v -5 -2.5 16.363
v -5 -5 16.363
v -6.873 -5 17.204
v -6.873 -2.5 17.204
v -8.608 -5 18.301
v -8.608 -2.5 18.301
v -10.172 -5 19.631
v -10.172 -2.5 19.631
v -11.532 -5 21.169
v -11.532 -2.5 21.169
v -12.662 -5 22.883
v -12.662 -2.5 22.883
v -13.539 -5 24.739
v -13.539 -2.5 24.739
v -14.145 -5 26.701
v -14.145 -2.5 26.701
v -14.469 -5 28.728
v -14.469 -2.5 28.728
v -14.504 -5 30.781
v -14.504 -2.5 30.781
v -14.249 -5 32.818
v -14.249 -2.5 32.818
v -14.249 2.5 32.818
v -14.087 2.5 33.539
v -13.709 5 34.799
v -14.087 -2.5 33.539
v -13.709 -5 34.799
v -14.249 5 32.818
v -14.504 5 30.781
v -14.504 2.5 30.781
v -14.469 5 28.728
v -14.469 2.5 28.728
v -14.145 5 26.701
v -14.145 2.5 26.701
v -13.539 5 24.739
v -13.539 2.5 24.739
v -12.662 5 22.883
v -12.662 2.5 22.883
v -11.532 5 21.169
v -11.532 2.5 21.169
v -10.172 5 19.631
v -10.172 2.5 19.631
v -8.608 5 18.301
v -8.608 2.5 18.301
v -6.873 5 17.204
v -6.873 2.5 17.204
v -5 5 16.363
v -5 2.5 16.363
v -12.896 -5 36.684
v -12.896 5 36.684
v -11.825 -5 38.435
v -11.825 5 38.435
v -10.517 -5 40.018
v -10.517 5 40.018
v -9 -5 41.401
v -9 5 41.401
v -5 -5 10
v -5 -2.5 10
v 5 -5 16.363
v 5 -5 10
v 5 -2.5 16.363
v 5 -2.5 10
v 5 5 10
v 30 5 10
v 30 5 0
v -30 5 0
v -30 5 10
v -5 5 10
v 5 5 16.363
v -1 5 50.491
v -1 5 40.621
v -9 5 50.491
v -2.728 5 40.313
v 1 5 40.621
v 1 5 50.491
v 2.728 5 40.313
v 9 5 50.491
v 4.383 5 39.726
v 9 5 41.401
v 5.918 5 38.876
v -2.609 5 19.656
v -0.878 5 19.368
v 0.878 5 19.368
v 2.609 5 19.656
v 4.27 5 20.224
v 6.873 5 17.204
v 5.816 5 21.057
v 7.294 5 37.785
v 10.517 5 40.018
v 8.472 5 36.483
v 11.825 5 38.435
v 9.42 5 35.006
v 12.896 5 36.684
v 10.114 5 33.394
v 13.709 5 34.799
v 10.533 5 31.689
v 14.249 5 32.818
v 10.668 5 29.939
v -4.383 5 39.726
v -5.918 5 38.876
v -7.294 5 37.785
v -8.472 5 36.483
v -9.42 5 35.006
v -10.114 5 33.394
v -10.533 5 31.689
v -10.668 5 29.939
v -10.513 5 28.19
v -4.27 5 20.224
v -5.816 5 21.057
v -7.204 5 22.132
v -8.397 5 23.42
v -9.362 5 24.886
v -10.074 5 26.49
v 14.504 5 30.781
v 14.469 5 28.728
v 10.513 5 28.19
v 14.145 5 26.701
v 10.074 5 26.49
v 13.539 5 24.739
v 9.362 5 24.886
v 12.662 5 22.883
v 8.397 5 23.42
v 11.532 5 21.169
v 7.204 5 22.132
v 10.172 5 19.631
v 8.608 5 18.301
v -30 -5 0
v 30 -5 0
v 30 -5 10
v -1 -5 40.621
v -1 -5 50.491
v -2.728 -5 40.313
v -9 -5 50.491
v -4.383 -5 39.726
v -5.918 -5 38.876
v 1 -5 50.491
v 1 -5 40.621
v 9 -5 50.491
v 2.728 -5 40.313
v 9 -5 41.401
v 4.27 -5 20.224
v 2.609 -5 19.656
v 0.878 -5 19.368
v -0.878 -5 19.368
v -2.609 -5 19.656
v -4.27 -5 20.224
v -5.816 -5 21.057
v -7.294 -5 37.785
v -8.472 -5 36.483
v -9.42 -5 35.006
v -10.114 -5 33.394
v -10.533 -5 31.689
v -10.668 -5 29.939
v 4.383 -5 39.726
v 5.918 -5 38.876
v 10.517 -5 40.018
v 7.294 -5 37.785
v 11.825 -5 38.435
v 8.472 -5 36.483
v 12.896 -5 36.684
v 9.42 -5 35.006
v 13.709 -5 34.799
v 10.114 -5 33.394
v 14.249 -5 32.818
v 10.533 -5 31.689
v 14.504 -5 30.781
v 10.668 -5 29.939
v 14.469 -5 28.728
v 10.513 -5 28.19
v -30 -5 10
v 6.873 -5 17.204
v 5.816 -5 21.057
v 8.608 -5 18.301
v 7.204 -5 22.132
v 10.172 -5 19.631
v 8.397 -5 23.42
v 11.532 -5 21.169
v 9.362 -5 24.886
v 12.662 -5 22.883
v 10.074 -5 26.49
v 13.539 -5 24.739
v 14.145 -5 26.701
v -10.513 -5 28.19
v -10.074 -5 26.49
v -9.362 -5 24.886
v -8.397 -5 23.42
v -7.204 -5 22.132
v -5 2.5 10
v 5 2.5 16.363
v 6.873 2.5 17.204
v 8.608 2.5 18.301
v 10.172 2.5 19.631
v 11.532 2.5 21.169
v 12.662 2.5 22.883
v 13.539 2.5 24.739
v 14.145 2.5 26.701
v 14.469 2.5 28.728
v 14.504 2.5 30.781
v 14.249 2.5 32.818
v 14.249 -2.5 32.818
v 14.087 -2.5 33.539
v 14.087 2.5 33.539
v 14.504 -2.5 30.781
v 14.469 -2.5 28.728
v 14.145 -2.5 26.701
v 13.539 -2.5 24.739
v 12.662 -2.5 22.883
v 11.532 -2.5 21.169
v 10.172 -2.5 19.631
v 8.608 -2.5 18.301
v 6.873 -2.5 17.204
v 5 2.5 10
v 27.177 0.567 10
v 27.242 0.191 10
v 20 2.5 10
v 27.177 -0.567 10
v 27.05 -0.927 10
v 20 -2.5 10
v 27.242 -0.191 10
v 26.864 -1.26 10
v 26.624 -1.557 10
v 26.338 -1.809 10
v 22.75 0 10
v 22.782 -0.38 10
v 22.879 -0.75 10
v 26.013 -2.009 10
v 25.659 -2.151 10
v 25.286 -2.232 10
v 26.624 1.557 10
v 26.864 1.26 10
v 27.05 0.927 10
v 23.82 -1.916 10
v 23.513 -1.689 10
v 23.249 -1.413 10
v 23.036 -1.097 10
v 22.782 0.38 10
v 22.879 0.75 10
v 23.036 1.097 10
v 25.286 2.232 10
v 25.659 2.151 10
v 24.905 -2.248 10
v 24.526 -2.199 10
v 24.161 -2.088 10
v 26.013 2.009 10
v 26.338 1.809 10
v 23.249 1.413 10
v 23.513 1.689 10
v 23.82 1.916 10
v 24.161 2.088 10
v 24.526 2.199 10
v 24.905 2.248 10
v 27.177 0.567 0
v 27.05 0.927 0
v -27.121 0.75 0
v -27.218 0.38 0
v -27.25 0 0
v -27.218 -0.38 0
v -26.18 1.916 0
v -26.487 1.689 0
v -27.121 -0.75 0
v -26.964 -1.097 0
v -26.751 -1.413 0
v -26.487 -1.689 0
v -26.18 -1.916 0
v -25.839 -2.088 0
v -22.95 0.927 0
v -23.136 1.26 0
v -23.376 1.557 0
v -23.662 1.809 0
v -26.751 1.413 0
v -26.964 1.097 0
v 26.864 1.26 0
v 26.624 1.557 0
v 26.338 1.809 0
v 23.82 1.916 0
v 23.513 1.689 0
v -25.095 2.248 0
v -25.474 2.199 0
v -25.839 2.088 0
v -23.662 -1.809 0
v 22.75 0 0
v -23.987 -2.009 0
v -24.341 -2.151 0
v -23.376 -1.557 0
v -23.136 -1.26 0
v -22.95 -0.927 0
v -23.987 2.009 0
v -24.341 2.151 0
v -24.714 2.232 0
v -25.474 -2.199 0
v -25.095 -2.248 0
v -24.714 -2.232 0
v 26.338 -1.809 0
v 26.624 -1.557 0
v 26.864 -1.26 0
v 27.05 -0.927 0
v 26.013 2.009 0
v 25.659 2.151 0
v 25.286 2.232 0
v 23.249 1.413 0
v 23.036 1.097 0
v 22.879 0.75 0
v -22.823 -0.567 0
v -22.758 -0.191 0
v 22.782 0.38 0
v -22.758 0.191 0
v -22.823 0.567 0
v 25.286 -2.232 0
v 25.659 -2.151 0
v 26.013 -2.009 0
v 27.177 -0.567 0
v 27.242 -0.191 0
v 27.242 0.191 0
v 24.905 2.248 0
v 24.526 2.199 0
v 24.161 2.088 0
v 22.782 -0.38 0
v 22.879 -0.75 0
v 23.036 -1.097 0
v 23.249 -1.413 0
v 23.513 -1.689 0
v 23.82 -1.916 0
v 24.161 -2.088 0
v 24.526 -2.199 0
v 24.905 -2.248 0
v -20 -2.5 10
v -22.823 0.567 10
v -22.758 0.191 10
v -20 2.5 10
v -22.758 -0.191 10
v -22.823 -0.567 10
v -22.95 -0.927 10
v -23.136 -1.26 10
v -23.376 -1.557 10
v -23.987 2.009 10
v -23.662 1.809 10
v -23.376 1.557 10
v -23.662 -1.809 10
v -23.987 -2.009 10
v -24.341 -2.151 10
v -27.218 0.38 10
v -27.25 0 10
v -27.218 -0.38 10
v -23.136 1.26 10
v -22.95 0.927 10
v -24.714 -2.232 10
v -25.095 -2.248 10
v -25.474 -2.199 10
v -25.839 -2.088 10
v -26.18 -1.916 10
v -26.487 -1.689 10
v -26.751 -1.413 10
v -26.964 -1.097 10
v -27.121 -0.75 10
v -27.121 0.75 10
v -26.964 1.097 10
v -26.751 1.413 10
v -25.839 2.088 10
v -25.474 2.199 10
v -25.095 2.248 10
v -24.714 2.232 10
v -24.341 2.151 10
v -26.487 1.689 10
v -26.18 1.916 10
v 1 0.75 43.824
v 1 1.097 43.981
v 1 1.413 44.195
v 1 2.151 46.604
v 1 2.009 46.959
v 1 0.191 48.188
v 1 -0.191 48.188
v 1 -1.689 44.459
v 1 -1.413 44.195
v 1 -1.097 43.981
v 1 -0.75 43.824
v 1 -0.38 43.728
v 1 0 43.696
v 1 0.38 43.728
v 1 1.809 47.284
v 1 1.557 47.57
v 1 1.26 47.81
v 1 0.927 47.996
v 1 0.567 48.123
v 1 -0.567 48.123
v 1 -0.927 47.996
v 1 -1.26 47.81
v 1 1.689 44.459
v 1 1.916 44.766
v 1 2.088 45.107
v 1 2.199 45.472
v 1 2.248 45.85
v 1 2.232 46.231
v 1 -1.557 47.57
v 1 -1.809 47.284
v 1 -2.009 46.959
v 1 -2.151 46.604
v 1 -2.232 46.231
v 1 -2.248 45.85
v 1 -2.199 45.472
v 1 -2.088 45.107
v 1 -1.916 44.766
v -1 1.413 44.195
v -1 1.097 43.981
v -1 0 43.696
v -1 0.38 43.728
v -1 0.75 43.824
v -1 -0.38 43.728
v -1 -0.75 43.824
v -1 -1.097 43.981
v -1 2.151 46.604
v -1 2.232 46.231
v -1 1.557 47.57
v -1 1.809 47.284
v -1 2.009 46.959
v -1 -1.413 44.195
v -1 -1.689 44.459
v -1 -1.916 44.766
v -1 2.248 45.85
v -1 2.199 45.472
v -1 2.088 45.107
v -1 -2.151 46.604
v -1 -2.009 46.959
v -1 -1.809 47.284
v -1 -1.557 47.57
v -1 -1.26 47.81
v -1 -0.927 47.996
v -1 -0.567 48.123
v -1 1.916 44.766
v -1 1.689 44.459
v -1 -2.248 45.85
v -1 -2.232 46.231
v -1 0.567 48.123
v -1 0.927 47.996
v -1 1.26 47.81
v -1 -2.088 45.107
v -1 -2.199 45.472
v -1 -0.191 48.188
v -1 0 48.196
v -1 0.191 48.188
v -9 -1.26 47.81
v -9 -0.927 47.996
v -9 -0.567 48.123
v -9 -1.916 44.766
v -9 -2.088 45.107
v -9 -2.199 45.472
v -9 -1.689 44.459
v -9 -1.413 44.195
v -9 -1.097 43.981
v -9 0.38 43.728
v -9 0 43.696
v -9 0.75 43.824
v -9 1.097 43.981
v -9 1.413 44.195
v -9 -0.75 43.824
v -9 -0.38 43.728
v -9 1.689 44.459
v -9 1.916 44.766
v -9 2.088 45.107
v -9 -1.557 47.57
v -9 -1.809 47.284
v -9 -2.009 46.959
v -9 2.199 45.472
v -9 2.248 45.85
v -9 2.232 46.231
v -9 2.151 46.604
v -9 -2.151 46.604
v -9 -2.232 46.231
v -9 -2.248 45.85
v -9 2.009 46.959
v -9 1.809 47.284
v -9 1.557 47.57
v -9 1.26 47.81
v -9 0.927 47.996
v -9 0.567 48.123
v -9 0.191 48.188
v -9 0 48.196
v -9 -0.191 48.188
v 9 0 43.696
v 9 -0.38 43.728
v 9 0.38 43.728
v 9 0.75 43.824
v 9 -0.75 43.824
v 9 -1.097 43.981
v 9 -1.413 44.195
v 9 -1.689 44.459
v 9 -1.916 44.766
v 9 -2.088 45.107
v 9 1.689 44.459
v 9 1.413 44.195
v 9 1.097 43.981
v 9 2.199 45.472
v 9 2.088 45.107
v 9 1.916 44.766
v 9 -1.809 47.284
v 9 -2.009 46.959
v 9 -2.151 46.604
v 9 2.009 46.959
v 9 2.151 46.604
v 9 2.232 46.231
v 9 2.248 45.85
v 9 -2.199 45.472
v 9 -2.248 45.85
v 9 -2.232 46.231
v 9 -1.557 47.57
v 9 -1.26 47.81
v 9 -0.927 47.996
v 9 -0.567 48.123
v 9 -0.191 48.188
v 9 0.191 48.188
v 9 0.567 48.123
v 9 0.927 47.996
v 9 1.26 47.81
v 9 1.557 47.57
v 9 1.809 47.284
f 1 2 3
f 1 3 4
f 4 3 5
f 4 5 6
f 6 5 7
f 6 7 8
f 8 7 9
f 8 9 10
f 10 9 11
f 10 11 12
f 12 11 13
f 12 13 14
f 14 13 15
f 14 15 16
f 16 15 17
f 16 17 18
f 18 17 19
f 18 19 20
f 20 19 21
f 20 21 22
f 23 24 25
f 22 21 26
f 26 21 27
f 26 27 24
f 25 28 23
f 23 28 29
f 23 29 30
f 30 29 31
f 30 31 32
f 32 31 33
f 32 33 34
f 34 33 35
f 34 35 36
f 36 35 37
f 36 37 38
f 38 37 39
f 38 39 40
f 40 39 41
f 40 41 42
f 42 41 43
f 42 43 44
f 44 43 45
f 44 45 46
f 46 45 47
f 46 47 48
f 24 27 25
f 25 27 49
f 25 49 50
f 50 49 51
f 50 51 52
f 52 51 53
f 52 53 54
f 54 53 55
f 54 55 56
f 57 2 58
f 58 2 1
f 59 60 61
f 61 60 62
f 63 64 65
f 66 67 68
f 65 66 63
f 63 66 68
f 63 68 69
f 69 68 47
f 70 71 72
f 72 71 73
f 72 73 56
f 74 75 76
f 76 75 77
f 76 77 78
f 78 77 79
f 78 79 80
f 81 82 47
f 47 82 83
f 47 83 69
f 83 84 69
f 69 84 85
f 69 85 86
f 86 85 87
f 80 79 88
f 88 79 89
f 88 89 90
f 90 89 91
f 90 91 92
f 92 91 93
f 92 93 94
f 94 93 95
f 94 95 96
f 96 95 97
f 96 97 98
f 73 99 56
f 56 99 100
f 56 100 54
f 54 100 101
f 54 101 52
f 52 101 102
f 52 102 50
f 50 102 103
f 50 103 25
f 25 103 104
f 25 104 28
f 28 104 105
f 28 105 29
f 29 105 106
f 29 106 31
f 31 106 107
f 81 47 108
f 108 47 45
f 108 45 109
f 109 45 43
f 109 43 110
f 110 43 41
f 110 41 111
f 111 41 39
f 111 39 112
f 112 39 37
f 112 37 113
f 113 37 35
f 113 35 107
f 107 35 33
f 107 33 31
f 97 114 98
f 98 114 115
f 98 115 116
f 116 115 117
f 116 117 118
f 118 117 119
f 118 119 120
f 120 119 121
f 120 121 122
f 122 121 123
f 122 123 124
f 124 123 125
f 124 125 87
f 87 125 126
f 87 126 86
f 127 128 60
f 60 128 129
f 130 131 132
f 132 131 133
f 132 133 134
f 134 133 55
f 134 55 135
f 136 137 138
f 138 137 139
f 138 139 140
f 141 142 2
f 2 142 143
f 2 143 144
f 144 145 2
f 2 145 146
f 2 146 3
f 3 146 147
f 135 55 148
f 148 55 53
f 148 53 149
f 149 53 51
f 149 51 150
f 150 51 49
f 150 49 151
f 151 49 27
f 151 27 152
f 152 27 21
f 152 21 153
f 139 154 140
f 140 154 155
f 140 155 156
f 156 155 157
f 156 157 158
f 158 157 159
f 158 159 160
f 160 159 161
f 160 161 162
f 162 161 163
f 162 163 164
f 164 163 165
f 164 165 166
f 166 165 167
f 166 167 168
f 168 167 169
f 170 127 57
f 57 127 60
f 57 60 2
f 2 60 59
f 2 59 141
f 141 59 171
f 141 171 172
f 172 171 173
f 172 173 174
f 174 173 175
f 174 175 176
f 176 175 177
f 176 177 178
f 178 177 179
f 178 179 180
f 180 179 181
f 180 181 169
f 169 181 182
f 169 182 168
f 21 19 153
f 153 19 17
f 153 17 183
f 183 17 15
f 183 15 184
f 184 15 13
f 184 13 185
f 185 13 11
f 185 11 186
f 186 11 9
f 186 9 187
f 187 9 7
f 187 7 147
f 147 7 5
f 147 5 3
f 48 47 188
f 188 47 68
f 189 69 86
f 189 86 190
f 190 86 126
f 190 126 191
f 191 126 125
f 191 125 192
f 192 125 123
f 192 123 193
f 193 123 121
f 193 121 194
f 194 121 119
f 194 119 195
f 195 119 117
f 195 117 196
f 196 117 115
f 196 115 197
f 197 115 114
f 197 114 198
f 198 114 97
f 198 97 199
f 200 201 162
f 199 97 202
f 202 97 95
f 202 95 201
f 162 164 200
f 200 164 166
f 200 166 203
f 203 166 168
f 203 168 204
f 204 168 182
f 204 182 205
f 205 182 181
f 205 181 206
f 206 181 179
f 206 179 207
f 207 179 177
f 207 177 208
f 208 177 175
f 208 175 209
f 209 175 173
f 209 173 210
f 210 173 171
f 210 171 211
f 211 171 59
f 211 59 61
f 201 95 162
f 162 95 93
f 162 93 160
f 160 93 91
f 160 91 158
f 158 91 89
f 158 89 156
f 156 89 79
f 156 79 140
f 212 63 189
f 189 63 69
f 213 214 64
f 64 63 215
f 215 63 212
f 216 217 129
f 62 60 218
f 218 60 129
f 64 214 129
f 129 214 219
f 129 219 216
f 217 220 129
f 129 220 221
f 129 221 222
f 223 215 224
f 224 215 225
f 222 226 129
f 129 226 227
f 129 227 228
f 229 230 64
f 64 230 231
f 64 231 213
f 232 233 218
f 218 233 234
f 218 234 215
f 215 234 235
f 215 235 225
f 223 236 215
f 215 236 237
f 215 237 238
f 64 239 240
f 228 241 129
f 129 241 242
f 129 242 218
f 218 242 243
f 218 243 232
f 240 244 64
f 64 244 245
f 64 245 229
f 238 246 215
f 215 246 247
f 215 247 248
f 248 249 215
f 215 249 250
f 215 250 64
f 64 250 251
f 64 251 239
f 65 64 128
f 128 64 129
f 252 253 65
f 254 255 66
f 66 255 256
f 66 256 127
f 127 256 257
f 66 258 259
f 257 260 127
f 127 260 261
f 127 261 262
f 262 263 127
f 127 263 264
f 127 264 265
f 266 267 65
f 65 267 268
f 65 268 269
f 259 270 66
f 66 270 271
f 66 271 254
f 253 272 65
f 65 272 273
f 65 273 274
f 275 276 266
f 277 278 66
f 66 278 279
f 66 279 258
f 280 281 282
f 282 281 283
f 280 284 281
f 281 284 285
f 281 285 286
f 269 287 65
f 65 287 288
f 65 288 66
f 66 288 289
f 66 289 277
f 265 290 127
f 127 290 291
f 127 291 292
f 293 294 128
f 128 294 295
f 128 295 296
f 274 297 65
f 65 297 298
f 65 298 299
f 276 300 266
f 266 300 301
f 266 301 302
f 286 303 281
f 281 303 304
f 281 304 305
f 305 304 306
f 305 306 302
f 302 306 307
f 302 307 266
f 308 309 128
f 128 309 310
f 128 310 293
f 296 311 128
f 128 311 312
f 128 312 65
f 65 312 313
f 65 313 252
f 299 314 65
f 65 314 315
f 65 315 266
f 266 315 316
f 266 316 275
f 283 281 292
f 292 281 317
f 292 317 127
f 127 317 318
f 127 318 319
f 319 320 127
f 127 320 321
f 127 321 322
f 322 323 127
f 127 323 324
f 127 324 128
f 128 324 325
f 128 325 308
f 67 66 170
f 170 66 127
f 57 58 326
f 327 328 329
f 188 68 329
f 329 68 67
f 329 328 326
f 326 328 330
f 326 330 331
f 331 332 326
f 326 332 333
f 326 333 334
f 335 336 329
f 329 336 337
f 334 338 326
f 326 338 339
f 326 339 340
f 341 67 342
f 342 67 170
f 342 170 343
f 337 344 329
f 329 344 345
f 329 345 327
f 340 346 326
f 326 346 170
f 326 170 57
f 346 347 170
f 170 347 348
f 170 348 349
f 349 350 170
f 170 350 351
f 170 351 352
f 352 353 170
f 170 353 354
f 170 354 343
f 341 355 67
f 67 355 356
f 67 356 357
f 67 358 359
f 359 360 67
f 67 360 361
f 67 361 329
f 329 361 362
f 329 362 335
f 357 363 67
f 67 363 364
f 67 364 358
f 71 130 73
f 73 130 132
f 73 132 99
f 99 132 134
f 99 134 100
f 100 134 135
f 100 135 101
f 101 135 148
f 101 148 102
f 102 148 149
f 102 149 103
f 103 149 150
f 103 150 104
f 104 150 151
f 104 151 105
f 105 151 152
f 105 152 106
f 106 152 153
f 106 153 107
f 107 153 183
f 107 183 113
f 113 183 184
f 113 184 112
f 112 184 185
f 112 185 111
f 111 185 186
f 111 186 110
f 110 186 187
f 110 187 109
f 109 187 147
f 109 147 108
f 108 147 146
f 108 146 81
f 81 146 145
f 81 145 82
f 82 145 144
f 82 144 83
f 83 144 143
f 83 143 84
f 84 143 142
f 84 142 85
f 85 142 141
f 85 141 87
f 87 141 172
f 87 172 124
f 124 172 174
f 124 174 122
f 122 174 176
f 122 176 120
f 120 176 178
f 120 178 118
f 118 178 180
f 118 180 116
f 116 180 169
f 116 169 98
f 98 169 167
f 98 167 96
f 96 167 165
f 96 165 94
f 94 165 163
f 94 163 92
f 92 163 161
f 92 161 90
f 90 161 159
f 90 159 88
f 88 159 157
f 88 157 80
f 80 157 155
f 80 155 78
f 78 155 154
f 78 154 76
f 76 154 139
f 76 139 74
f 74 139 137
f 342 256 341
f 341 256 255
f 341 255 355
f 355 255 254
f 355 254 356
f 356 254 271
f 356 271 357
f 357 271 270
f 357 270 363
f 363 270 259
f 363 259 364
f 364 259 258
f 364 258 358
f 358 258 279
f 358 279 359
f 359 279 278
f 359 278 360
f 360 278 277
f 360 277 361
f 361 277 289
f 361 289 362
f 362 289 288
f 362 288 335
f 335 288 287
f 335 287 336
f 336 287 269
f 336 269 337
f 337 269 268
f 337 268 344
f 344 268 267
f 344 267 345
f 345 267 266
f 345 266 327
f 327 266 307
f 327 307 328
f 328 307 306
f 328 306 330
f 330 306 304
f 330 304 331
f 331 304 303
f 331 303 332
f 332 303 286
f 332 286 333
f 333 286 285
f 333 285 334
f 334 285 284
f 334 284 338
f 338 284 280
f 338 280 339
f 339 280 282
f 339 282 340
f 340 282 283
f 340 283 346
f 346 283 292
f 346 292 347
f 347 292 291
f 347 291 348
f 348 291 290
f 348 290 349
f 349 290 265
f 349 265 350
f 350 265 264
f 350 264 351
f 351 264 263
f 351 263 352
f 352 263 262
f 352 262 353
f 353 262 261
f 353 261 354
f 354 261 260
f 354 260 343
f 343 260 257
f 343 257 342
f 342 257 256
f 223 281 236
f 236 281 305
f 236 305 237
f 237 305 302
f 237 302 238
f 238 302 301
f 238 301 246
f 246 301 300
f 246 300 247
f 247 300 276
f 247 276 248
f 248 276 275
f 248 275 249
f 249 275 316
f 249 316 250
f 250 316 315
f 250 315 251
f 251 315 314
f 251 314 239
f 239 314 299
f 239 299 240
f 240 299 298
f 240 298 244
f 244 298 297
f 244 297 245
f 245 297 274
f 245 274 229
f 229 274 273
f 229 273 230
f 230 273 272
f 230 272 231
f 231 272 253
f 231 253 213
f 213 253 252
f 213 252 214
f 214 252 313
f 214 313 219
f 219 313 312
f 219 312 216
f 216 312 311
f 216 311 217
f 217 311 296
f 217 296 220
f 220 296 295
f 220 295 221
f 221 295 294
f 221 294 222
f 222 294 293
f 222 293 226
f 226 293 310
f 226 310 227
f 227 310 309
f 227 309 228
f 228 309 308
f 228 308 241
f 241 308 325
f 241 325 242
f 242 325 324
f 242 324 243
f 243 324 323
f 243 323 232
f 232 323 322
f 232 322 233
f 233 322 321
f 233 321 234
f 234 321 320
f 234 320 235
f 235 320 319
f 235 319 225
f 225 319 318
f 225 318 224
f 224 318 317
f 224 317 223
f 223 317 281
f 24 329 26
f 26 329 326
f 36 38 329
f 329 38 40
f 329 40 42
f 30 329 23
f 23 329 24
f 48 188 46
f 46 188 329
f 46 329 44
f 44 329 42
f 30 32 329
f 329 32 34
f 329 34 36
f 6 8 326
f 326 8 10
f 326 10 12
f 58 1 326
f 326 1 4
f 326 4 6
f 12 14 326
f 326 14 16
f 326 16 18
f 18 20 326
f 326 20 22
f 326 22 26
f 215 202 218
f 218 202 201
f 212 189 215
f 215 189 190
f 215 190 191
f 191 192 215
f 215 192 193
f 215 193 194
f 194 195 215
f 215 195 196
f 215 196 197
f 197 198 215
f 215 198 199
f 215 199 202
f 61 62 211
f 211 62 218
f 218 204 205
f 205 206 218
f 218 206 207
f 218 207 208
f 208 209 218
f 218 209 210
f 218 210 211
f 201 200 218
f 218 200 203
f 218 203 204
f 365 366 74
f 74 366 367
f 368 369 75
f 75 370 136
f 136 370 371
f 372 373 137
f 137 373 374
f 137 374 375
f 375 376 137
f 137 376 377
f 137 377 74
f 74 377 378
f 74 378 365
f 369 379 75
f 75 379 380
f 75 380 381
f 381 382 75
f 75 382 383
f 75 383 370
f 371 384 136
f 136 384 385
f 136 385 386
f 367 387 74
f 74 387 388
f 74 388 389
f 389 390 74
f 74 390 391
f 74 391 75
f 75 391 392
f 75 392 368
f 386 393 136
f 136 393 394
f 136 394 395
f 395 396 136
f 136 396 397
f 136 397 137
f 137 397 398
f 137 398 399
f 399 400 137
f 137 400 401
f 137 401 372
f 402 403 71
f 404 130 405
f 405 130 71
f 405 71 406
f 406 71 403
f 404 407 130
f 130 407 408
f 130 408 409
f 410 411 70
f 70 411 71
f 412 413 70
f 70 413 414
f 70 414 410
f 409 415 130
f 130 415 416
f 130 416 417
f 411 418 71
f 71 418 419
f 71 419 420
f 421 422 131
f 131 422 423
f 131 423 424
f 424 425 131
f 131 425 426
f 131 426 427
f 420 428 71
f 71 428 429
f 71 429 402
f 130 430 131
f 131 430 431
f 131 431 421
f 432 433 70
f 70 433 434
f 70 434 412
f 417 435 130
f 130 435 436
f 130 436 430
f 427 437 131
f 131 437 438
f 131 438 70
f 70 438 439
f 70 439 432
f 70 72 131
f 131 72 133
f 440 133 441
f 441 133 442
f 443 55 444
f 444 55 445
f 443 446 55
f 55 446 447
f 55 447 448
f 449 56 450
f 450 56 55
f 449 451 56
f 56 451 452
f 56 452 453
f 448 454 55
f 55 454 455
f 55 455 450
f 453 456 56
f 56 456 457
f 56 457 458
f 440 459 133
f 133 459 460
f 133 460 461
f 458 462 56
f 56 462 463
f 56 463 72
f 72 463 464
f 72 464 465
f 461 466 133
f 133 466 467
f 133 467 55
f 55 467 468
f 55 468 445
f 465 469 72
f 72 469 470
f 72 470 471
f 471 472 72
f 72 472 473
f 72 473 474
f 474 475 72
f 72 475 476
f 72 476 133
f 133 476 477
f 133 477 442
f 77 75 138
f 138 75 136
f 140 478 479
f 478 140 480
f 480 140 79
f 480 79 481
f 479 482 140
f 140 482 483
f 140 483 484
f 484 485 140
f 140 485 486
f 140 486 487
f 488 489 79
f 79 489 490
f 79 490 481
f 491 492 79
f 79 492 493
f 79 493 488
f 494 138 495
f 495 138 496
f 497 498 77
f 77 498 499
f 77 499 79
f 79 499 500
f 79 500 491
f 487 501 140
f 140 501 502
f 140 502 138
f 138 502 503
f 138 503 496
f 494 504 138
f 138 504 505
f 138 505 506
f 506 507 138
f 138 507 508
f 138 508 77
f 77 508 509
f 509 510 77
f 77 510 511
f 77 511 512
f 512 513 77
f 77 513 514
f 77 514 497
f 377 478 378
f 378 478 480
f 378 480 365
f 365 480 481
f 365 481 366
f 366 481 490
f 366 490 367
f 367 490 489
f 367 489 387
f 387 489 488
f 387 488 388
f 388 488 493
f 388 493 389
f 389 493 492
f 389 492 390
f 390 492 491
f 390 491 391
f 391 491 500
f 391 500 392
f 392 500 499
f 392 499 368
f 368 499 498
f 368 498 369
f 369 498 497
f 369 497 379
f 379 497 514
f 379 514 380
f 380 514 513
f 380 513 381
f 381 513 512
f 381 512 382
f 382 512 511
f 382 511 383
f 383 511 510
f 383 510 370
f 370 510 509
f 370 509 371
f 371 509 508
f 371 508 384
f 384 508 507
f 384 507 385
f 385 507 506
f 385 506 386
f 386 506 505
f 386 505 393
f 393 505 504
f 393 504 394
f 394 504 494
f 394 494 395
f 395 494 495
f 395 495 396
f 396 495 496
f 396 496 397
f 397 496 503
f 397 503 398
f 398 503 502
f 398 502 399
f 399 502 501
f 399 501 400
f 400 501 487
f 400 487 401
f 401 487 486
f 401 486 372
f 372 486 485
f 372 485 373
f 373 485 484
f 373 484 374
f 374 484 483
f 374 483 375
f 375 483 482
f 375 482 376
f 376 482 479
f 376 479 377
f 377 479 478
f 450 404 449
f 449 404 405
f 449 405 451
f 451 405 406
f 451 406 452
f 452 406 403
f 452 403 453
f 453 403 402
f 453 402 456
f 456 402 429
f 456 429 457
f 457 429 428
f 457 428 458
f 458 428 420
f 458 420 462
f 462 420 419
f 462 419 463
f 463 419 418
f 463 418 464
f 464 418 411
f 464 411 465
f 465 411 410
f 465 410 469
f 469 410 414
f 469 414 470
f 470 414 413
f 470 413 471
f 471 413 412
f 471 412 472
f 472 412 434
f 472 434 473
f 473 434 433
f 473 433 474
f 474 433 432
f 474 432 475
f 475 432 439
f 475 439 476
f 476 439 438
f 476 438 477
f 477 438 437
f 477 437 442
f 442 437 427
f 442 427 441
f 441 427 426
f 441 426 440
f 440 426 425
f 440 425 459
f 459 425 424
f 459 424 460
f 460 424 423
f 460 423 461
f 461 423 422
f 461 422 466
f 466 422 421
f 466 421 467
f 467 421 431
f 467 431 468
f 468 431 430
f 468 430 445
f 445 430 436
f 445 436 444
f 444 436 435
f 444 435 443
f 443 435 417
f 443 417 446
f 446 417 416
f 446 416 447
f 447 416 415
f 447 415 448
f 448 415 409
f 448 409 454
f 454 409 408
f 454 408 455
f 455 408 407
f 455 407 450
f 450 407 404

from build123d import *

# Parameters (mm, degrees)
CROQUIS1_R              = 10.668
SALIENTE_EXTRUIR1_DEPTH = 5
CORTAR_EXTRUIR1_REACH   = 55.921
CROQUIS2_R              = 2.25
SALIENTE_EXTRUIR2_DEPTH = 2.5
CROQUIS7_W              = 2
CROQUIS7_H              = 8
CORTAR_EXTRUIR5_DEPTH   = 55.612046519
SALIENTE_EXTRUIR3_DEPTH = 10
CORTAR_EXTRUIR6_REACH   = 65.994
CROQUIS9_R              = 2.25


with BuildPart() as part:
    # Croquis1 → Saliente-Extruir1 (new, symmetric)
    with BuildSketch(Plane(origin=(0, 0, 0), x_dir=(1, 0, 0), z_dir=(0, 1, 0))):
        with BuildLine():
            Line((30, 0), (-30, 0))
            Line((-30, 0), (-30, -10))
            Line((-30, -10), (-5, -10))
            Line((-5, -10), (-5, -16.362711963))
            ThreePointArc((-5, -16.362711963), (0, -44.525), (5, -16.362711963))
            Line((5, -16.362711963), (5, -10))
            Line((5, -10), (30, -10))
            Line((30, -10), (30, 0))
        make_face()
        with Locations(Location((0, -30, 0), (0, 0, 270))):
            Circle(CROQUIS1_R, mode=Mode.SUBTRACT)
    extrude(amount=SALIENTE_EXTRUIR1_DEPTH, both=True)

    # Croquis2 → Cortar-Extruir1 (cut, up to next)
    with BuildSketch(Plane(origin=(0, 0, 0), x_dir=(-1, 0, 0), z_dir=(0, 0, -1)), mode=Mode.PRIVATE) as cortar_extruir1_sk1:
        with Locations((25, 0)):
            Circle(CROQUIS2_R)
    cortar_extruir1_tool1 = extrude(cortar_extruir1_sk1.sketch, amount=-CORTAR_EXTRUIR1_REACH, mode=Mode.PRIVATE) & part.part
    # Croquis2 → Cortar-Extruir1 (cut, up to next)
    with BuildSketch(Plane(origin=(0, 0, 0), x_dir=(-1, 0, 0), z_dir=(0, 0, -1)), mode=Mode.PRIVATE) as cortar_extruir1_sk2:
        with Locations((-25, 0)):
            Circle(CROQUIS2_R)
    cortar_extruir1_tool2 = extrude(cortar_extruir1_sk2.sketch, amount=-CORTAR_EXTRUIR1_REACH, mode=Mode.PRIVATE) & part.part
    add(cortar_extruir1_tool1.solids().sort_by_distance((-25, 0, 0))[0], mode=Mode.SUBTRACT)
    add(cortar_extruir1_tool2.solids().sort_by_distance((25, 0, 0))[0], mode=Mode.SUBTRACT)

    # Croquis3 → Saliente-Extruir2 (add, symmetric)
    with BuildSketch(Plane(origin=(0, 0, 0), x_dir=(1, 0, 0), z_dir=(0, 1, 0))):
        with BuildLine():
            ThreePointArc((-5, -16.362711963), (-12.838793561, -23.207282952), (-14.0873706, -33.53858935))
            Line((-14.0873706, -33.53858935), (-20, -10))
            Line((-20, -10), (-5, -10))
            Line((-5, -10), (-5, -16.362711963))
        make_face()
        with BuildLine():
            Line((5, -10), (5, -16.362711963))
            ThreePointArc((5, -16.362711963), (12.838793561, -23.207282952), (14.0873706, -33.53858935))
            Line((14.0873706, -33.53858935), (20, -10))
            Line((20, -10), (5, -10))
        make_face()
    extrude(amount=SALIENTE_EXTRUIR2_DEPTH, both=True)

    # Croquis7 → Cortar-Extruir5 (cut, through all)
    with BuildSketch(Plane(origin=(0, 5, 0), x_dir=(1, 0, 0), z_dir=(0, 1, 0))):
        with Locations((0, -42.5965)):
            Rectangle(CROQUIS7_W, CROQUIS7_H)
    extrude(amount=-CORTAR_EXTRUIR5_DEPTH, mode=Mode.SUBTRACT)

    # Croquis8 → Saliente-Extruir3 (add)
    with BuildSketch(Plane(origin=(0, 5, 0), x_dir=(1, 0, 0), z_dir=(0, 1, 0))):
        with BuildLine():
            Line((-1, -44.490535704), (-1, -50.490535704))
            Line((-1, -50.490535704), (-9, -50.490535704))
            Line((-9, -50.490535704), (-9, -41.400685286))
            ThreePointArc((-9, -41.400685286), (-5.233239332, -43.549495603), (-1, -44.490535704))
        make_face()
        with BuildLine():
            Line((9, -50.490535704), (9, -41.400685286))
            ThreePointArc((9, -41.400685286), (5.233239332, -43.549495603), (1, -44.490535704))
            Line((1, -44.490535704), (1, -50.490535704))
            Line((1, -50.490535704), (9, -50.490535704))
        make_face()
    extrude(amount=-SALIENTE_EXTRUIR3_DEPTH)

    # Cortar-Extruir6: up to this face of the body (flat: up to its plane)
    cortar_extruir6_end = Plane(part.part.faces().sort_by_distance((-9, 0, 45.945610495))[0])
    # Croquis9 → Cortar-Extruir6 (cut, up to the picked face)
    with BuildSketch(Plane(origin=(9, 0, 0), x_dir=(0, 0, -1), z_dir=(1, 0, 0)), mode=Mode.PRIVATE) as cortar_extruir6_sk1:
        with Locations((-45.945610495, 0)):
            Circle(CROQUIS9_R)
    cortar_extruir6_tool1 = split(extrude(cortar_extruir6_sk1.sketch, amount=-CORTAR_EXTRUIR6_REACH, mode=Mode.PRIVATE), bisect_by=cortar_extruir6_end, keep=Keep.BOTH, mode=Mode.PRIVATE)
    add(cortar_extruir6_tool1.solids().sort_by(Axis((9, 0, 45.94561), (-1, 0, 0)))[0], mode=Mode.SUBTRACT)


solid = part.part
